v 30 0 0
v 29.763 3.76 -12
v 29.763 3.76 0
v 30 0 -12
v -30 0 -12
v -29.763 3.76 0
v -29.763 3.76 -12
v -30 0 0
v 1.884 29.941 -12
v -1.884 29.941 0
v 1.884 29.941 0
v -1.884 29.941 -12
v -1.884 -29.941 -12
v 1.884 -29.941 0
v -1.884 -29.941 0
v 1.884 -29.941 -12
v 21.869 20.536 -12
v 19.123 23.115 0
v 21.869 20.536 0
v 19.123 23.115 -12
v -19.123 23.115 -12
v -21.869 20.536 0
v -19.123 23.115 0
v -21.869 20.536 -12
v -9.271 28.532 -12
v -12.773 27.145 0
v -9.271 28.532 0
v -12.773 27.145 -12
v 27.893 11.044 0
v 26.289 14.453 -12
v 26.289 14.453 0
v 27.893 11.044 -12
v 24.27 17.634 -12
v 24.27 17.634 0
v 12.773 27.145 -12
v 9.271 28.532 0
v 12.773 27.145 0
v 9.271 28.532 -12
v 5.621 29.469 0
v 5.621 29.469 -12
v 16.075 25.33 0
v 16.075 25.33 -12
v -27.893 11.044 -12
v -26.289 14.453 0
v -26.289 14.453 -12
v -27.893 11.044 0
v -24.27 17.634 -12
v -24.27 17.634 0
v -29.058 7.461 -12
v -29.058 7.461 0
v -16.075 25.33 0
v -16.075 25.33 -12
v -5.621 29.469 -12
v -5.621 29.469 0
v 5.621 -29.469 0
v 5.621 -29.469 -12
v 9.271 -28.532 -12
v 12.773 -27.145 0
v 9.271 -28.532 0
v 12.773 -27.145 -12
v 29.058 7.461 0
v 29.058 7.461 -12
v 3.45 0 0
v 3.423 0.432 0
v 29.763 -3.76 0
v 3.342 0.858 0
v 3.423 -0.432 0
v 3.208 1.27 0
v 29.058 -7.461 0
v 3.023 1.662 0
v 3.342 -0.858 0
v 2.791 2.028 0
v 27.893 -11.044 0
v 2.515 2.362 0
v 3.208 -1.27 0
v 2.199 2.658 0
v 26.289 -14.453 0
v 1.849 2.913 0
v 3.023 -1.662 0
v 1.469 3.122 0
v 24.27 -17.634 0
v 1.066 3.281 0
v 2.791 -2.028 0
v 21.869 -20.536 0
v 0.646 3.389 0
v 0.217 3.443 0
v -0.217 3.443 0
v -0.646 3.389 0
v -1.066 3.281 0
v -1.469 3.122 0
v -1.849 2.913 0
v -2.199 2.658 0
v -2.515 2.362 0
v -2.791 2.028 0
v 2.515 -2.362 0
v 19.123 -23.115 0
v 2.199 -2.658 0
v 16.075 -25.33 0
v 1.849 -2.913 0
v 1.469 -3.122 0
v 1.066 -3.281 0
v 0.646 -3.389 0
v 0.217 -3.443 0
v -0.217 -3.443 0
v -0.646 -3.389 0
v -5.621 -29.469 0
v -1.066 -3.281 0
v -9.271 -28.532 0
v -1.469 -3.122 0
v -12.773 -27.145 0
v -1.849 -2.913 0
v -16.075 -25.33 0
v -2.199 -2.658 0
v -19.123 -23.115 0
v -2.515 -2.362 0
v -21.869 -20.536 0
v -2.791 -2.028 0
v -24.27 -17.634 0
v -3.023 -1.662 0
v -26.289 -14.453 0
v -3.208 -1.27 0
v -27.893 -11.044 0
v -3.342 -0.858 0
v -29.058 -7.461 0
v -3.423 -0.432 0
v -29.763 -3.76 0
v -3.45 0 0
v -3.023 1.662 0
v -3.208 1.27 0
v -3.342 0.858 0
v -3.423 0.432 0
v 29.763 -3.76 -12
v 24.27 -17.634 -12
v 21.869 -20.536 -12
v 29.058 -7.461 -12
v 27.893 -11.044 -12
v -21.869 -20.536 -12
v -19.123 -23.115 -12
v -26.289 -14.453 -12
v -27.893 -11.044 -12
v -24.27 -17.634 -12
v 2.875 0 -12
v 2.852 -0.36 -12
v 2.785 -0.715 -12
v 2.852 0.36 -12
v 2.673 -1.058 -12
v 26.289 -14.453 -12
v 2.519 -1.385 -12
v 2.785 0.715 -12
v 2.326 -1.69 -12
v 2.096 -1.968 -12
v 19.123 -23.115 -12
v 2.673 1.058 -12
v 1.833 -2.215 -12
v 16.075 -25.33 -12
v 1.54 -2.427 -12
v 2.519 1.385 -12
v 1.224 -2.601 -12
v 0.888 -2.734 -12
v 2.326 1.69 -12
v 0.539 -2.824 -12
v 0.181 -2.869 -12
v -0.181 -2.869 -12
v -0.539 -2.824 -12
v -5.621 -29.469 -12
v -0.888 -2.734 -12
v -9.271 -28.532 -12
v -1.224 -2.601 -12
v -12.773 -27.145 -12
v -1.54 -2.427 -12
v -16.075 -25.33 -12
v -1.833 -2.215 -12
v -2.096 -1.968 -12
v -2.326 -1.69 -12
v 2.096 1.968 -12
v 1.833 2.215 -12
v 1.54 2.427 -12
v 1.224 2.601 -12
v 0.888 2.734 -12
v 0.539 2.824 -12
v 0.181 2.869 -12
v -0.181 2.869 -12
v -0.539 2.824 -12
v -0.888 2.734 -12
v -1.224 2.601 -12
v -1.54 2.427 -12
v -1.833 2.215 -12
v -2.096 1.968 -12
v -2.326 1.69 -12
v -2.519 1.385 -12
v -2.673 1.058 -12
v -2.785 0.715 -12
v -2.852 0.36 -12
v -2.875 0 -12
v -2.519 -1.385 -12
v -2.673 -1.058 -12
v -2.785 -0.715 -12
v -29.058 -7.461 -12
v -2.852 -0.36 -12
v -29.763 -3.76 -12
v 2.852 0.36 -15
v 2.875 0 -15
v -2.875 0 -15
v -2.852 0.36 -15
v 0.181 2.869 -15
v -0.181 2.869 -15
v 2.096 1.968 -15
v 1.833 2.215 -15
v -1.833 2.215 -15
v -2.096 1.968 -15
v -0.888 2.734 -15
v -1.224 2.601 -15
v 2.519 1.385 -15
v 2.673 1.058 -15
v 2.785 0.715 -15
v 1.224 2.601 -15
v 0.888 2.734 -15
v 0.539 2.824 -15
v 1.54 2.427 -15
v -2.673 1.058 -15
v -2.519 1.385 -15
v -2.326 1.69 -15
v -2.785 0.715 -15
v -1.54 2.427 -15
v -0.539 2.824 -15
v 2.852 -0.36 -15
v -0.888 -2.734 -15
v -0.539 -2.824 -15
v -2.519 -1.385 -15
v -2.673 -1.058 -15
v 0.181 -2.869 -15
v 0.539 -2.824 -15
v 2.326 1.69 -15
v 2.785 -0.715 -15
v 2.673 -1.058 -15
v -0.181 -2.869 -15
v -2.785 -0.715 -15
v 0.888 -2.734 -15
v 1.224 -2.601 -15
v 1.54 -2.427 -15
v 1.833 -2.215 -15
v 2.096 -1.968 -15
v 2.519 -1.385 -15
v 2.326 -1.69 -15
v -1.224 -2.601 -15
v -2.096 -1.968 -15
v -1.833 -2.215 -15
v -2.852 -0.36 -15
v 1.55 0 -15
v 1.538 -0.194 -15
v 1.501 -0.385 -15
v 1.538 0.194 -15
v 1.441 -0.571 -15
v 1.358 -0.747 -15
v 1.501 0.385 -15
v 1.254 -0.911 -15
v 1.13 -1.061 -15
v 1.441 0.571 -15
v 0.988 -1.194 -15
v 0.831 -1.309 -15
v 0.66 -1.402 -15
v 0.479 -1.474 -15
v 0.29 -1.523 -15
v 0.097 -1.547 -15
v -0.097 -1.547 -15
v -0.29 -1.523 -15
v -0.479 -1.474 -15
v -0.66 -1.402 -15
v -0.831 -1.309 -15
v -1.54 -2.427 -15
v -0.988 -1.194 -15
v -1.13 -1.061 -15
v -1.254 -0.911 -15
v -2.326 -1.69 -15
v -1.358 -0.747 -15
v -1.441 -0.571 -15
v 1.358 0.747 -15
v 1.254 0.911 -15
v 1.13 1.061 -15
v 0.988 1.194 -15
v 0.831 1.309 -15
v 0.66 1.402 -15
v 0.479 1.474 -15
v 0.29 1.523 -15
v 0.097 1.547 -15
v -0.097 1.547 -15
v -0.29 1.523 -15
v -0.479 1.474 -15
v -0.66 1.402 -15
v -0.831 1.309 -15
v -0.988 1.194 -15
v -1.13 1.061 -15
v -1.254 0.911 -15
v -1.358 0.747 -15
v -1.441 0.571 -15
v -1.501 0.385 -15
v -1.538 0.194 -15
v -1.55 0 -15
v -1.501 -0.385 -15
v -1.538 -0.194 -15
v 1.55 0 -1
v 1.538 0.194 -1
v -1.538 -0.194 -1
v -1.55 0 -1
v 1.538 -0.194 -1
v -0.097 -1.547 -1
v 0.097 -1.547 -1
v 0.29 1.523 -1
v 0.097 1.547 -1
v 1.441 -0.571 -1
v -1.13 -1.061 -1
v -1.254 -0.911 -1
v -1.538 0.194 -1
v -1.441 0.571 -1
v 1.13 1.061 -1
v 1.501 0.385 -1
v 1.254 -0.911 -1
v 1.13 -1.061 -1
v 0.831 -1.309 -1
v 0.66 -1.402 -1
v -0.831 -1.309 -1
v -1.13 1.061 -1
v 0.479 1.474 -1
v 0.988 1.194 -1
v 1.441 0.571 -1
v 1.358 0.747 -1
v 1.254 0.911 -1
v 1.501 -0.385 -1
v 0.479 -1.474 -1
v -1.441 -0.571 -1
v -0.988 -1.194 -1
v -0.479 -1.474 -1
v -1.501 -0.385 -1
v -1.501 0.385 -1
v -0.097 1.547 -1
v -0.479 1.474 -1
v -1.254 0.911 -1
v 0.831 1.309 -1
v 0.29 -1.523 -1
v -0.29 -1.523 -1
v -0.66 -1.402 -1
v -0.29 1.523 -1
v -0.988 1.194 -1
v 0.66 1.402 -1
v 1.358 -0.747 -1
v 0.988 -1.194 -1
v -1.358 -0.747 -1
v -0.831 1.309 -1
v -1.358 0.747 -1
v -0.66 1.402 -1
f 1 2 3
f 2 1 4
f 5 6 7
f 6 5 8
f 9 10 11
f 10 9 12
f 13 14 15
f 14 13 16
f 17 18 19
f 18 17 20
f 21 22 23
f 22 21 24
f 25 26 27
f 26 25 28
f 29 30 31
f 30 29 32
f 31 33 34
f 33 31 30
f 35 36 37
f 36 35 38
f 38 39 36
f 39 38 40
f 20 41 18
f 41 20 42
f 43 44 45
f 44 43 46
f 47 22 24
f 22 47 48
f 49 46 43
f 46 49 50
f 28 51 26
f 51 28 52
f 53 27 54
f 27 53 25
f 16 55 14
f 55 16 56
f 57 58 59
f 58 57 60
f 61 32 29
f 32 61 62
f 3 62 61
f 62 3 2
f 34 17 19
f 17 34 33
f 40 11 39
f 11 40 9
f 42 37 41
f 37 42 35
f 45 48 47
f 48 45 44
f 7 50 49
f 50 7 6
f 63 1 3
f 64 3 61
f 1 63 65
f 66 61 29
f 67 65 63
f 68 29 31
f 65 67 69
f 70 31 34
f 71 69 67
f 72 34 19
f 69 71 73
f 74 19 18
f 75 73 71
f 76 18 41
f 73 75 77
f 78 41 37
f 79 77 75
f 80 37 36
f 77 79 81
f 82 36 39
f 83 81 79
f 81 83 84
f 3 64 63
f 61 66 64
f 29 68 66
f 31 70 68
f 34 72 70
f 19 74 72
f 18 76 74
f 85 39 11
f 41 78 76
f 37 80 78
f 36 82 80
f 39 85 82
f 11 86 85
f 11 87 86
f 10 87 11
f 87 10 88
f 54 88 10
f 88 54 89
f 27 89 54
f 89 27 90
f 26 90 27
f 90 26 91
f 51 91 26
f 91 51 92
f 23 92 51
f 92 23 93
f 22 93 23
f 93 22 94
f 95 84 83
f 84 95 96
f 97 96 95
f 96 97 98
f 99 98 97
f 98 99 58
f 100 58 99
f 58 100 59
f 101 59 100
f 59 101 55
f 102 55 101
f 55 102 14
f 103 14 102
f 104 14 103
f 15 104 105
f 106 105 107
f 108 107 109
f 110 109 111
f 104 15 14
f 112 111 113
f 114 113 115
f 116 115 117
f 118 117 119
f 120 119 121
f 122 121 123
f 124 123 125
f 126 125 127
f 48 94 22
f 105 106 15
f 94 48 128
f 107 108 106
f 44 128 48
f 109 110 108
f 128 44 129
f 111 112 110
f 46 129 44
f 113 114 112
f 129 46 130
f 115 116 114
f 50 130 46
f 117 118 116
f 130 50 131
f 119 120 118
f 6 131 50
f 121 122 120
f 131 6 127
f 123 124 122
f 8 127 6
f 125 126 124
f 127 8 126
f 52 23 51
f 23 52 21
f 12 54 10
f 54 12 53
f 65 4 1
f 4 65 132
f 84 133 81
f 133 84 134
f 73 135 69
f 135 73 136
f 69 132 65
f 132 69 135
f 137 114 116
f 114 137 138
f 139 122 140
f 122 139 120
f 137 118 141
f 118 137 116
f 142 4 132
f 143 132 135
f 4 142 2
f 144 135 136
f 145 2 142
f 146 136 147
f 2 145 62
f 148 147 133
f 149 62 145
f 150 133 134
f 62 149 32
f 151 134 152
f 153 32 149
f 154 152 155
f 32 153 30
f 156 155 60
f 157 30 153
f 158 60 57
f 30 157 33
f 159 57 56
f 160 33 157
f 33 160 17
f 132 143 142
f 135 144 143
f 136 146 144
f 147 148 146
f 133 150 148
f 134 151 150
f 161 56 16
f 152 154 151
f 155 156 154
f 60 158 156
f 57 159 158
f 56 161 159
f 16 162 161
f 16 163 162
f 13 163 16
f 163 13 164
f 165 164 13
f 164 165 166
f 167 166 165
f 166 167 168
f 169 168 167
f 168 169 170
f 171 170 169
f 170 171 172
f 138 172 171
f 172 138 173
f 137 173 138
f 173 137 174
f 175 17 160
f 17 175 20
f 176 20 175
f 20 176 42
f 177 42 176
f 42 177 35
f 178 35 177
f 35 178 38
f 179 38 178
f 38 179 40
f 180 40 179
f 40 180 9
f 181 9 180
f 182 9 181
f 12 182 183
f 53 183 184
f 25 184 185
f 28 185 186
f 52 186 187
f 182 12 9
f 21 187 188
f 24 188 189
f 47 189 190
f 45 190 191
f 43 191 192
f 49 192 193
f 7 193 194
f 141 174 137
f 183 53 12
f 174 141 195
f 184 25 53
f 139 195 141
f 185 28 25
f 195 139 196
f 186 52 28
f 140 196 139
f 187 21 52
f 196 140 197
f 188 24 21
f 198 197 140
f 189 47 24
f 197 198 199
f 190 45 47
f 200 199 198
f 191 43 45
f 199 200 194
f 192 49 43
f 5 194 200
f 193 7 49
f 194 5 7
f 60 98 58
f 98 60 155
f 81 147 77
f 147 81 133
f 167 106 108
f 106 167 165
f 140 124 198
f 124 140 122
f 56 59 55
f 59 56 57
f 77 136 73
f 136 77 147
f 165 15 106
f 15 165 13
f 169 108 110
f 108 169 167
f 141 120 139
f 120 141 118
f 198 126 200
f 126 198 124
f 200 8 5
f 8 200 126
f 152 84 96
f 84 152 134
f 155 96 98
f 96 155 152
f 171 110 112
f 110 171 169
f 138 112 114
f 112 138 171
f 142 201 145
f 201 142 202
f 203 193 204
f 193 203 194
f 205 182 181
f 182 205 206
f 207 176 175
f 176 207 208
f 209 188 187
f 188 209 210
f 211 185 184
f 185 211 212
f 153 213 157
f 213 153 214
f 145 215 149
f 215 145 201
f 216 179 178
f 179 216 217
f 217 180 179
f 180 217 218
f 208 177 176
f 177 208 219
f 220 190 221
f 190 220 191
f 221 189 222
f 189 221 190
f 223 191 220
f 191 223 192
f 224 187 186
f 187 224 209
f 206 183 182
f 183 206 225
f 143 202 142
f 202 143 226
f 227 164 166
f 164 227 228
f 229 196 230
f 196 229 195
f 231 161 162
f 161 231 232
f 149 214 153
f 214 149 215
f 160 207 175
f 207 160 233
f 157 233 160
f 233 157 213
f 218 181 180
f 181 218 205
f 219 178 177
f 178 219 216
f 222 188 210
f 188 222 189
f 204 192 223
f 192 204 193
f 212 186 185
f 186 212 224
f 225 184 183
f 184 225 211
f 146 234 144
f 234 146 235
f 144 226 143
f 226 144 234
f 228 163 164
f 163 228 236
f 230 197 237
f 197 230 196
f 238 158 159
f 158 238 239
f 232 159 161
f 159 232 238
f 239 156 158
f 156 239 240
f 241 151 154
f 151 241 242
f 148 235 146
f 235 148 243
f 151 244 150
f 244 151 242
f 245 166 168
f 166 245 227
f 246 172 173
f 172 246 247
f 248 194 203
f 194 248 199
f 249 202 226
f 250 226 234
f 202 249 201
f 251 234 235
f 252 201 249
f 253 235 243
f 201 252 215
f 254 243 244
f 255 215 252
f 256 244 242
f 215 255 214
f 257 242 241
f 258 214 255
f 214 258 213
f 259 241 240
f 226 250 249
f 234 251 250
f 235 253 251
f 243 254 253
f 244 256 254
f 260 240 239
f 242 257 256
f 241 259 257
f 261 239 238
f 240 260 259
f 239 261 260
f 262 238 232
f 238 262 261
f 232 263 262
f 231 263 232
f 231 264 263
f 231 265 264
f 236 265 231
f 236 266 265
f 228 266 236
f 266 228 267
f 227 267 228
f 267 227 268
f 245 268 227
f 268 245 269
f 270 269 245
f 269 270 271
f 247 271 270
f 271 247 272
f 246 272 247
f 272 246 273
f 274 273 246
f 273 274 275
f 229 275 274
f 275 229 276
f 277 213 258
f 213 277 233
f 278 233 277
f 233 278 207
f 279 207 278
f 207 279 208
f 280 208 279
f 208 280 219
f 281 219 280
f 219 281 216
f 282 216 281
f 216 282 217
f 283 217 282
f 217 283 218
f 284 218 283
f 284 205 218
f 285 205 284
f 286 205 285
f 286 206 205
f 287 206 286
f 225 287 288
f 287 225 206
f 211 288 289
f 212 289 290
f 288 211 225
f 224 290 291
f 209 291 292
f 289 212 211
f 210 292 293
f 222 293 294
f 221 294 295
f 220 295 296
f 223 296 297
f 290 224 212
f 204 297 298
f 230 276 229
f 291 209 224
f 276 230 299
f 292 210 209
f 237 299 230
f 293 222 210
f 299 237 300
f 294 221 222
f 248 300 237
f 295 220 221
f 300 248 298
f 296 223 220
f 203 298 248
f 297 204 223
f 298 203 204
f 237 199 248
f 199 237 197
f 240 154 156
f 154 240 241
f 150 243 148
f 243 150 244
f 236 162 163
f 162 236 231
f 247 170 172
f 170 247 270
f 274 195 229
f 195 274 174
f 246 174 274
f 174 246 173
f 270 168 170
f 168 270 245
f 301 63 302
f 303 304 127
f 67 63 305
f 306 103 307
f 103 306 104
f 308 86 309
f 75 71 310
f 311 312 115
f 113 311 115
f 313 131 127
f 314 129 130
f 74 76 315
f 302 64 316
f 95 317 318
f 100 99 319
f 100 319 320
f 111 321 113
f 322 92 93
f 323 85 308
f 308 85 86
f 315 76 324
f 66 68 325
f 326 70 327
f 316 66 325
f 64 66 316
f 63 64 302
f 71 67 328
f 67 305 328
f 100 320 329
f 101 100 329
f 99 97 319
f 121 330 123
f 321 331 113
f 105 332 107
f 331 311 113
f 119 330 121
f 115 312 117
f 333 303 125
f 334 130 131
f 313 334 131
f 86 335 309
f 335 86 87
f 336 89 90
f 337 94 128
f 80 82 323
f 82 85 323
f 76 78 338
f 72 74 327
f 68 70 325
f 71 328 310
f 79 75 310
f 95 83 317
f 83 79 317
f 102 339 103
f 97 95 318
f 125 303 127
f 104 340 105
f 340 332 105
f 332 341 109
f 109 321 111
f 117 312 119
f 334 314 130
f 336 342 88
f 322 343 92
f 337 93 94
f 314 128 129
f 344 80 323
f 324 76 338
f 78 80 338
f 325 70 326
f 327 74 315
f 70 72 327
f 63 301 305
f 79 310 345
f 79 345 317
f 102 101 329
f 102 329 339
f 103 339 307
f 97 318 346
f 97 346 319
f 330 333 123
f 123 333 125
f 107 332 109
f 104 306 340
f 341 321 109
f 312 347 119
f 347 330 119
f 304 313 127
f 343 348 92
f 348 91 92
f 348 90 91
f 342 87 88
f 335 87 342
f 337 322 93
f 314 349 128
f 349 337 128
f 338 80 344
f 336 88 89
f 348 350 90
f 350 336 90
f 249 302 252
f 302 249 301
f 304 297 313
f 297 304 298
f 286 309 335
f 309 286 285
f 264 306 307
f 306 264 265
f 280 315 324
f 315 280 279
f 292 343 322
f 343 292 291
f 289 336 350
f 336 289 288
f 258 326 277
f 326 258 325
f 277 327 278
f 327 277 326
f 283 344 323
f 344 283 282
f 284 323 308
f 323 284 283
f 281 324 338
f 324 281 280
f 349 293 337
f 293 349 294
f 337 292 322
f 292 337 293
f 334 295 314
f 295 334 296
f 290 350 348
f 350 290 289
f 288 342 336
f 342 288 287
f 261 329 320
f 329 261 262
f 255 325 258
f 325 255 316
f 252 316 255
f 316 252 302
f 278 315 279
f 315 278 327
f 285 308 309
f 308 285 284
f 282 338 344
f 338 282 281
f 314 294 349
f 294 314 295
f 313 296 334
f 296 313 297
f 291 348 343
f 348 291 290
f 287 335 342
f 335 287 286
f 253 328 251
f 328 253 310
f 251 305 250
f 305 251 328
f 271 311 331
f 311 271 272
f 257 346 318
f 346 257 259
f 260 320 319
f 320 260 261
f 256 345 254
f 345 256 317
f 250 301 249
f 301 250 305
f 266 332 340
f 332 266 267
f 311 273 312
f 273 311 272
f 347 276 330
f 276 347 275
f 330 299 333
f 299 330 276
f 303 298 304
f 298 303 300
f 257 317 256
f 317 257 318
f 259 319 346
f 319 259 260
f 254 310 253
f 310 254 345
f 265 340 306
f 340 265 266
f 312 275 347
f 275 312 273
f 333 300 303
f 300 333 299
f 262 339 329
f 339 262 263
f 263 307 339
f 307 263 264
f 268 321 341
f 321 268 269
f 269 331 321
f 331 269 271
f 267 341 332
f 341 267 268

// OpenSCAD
$fn = 50;


difference() {
	union() {
		translate(v = [0, 0, -12.0000000000]) {
			cylinder(h = 12, r = 30.0000000000);
		}
		#translate(v = [0, 0, -15.0000000000]) {
			cylinder(h = 15, r = 2.8750000000);
		}
	}
	union() {
		translate(v = [0, 0, 0]) {
			rotate(a = [0, 0, 0]) {
				difference() {
					union() {
						translate(v = [0, 0, -15.0000000000]) {
							cylinder(h = 15, r = 1.2500000000);
						}
						translate(v = [0, 0, -1.0000000000]) {
							cylinder(h = 1.0000000000, r1 = 1.5500000000, r2 = 3.4500000000);
						}
						translate(v = [0, 0, -15.0000000000]) {
							cylinder(h = 15, r = 1.5500000000);
						}
						translate(v = [0, 0, -15.0000000000]) {
							cylinder(h = 15, r = 1.2500000000);
						}
					}
					union();
				}
			}
		}
	}
}
